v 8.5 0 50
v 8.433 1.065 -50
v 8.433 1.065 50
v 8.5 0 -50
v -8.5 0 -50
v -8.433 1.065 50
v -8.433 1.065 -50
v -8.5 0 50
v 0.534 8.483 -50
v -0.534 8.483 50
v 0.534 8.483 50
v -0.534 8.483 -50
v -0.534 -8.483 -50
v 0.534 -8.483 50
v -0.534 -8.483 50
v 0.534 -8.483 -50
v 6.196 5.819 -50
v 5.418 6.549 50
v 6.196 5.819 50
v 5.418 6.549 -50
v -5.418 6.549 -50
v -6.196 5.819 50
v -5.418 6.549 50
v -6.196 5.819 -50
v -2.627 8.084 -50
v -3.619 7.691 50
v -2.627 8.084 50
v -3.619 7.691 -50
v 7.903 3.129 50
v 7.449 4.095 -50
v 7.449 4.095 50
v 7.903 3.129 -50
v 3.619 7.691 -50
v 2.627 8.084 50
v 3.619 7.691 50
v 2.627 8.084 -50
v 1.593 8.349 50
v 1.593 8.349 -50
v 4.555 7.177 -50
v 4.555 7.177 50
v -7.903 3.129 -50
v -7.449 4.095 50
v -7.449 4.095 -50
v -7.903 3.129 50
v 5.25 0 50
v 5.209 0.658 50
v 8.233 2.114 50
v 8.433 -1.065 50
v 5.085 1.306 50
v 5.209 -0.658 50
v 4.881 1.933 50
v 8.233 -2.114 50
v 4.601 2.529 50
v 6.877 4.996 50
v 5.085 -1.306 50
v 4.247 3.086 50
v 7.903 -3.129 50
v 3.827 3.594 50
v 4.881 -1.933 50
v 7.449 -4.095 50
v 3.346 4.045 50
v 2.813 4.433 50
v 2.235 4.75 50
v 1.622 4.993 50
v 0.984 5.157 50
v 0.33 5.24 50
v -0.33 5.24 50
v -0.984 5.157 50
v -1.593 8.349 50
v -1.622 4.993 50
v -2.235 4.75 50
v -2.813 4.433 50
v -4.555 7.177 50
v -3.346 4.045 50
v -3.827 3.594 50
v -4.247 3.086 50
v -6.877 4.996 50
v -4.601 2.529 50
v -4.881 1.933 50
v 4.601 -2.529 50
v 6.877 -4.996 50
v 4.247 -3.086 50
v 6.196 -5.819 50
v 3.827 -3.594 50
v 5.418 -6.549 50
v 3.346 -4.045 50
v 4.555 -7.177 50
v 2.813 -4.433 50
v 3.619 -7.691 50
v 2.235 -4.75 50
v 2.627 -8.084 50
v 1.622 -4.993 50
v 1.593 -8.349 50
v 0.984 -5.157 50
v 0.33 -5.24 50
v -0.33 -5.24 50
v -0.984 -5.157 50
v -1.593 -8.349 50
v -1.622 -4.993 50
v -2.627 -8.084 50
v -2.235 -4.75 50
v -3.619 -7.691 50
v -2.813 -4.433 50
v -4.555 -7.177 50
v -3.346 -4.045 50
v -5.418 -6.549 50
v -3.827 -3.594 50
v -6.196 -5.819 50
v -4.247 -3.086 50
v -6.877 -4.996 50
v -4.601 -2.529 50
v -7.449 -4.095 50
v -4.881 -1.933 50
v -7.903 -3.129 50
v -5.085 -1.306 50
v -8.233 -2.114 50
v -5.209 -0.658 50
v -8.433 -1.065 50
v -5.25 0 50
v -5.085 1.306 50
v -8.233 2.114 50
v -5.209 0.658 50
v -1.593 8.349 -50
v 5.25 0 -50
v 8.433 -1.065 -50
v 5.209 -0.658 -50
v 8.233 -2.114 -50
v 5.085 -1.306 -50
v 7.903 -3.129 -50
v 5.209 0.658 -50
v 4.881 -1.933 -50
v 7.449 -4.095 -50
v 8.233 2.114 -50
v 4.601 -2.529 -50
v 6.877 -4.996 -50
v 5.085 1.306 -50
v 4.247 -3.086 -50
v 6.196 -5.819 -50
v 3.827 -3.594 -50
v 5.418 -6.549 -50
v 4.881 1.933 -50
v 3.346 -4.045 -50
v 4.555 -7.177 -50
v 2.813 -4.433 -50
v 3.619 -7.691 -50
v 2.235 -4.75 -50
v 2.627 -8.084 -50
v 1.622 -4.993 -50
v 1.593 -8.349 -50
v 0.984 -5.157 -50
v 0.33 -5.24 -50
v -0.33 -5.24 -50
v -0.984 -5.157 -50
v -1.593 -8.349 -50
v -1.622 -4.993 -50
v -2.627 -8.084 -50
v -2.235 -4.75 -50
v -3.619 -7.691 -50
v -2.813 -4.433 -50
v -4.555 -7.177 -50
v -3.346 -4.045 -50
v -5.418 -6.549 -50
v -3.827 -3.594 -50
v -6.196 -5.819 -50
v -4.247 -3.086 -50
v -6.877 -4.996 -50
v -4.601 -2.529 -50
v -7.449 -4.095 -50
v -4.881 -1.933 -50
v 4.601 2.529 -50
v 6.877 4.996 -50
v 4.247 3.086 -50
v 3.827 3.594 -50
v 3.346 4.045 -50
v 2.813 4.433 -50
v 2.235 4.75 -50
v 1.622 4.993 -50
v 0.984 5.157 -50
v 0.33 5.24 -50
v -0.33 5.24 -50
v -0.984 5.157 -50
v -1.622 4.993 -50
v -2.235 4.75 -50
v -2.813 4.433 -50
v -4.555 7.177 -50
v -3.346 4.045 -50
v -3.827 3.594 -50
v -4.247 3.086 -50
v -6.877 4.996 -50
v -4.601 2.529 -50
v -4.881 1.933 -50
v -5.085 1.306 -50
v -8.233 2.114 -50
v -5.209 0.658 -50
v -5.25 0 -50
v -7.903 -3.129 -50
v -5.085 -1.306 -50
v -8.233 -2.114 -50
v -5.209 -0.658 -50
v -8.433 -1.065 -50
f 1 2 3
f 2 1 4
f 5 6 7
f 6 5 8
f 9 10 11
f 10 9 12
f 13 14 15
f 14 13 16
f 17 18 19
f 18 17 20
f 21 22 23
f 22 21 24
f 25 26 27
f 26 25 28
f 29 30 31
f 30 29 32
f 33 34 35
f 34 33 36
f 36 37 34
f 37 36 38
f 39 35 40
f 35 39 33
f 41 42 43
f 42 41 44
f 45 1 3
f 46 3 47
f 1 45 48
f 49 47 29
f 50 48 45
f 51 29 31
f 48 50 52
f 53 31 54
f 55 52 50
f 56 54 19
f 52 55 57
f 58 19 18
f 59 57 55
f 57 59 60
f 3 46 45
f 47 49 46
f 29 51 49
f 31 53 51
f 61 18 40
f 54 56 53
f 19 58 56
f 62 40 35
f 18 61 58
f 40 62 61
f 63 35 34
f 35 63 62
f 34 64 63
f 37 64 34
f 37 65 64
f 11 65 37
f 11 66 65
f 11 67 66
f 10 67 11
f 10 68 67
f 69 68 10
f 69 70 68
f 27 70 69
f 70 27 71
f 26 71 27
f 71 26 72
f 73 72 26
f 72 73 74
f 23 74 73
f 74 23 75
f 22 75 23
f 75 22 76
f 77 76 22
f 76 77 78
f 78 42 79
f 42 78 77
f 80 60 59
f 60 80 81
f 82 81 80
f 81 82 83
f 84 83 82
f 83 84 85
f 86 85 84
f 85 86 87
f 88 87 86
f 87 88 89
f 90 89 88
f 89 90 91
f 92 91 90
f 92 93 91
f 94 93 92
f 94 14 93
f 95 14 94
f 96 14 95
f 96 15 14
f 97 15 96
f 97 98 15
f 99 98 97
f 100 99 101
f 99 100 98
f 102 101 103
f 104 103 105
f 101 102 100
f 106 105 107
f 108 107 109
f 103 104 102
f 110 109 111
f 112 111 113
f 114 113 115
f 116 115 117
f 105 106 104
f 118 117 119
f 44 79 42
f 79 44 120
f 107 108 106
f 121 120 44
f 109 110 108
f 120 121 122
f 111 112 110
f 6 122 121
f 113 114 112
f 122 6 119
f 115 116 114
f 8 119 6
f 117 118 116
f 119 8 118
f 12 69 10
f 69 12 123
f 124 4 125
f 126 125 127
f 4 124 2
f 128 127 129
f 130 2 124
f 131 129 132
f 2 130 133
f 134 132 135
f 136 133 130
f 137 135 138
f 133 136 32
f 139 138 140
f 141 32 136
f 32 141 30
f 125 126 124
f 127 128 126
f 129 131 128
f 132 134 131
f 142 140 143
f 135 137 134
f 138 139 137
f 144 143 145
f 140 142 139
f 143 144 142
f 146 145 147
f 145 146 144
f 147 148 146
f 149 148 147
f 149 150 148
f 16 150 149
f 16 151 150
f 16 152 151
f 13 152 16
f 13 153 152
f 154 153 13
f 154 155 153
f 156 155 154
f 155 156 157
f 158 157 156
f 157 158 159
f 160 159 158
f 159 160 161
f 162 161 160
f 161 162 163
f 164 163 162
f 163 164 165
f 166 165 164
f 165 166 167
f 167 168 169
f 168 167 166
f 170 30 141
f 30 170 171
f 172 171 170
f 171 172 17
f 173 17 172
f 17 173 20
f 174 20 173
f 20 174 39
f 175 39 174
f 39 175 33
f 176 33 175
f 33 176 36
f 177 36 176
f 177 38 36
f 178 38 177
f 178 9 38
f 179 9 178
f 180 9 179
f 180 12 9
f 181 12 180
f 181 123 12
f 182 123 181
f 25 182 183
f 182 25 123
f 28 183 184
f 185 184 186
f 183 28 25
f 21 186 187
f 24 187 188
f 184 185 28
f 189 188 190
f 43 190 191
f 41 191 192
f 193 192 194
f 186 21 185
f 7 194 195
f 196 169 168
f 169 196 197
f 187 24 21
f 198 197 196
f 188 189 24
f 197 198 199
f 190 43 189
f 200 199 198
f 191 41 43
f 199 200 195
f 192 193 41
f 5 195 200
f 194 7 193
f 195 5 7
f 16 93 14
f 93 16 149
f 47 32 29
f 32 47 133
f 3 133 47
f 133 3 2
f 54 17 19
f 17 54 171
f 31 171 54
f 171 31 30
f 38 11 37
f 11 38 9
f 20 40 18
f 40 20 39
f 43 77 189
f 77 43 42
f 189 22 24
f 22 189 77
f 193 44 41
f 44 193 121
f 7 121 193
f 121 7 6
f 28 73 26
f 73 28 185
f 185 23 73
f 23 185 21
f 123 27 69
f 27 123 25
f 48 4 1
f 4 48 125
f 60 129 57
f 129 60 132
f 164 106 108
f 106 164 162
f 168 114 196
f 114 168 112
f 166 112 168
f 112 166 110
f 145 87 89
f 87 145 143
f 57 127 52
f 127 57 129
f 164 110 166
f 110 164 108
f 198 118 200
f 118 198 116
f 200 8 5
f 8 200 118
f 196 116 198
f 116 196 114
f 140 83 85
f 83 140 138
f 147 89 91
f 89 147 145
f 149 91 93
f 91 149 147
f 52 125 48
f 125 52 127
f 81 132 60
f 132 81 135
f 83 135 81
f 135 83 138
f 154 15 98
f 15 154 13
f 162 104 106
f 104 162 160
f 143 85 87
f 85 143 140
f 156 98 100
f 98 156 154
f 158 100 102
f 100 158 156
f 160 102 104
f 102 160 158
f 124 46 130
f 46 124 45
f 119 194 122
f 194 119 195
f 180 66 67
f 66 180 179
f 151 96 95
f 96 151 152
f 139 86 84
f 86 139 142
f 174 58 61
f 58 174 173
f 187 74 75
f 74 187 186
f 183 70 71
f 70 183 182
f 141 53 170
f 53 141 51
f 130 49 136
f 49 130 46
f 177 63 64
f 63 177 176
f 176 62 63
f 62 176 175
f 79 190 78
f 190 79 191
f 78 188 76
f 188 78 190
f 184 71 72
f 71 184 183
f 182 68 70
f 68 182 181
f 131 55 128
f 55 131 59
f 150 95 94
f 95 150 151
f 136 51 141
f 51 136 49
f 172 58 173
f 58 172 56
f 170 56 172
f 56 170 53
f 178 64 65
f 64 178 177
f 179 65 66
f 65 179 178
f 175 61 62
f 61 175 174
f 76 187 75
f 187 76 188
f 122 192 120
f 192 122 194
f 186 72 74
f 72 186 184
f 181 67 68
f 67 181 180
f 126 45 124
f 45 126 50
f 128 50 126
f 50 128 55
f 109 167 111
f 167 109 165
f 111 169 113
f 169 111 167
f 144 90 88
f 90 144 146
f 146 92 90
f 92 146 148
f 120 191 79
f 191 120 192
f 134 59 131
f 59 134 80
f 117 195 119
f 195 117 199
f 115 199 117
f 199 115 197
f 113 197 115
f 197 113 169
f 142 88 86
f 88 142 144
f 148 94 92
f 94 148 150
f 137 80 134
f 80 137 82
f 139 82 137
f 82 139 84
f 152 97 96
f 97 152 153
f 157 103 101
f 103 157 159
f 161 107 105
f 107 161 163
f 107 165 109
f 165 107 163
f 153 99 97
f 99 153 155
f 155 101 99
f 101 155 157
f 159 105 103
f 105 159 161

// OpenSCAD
$fn = 50;


difference() {
	union() {
		translate(v = [0, 0, -50.0000000000]) {
			cylinder(h = 100, r = 8.5000000000);
		}
	}
	union() {
		translate(v = [0, 0, -100.0000000000]) {
			cylinder(h = 200, r = 5.2500000000);
		}
	}
}
